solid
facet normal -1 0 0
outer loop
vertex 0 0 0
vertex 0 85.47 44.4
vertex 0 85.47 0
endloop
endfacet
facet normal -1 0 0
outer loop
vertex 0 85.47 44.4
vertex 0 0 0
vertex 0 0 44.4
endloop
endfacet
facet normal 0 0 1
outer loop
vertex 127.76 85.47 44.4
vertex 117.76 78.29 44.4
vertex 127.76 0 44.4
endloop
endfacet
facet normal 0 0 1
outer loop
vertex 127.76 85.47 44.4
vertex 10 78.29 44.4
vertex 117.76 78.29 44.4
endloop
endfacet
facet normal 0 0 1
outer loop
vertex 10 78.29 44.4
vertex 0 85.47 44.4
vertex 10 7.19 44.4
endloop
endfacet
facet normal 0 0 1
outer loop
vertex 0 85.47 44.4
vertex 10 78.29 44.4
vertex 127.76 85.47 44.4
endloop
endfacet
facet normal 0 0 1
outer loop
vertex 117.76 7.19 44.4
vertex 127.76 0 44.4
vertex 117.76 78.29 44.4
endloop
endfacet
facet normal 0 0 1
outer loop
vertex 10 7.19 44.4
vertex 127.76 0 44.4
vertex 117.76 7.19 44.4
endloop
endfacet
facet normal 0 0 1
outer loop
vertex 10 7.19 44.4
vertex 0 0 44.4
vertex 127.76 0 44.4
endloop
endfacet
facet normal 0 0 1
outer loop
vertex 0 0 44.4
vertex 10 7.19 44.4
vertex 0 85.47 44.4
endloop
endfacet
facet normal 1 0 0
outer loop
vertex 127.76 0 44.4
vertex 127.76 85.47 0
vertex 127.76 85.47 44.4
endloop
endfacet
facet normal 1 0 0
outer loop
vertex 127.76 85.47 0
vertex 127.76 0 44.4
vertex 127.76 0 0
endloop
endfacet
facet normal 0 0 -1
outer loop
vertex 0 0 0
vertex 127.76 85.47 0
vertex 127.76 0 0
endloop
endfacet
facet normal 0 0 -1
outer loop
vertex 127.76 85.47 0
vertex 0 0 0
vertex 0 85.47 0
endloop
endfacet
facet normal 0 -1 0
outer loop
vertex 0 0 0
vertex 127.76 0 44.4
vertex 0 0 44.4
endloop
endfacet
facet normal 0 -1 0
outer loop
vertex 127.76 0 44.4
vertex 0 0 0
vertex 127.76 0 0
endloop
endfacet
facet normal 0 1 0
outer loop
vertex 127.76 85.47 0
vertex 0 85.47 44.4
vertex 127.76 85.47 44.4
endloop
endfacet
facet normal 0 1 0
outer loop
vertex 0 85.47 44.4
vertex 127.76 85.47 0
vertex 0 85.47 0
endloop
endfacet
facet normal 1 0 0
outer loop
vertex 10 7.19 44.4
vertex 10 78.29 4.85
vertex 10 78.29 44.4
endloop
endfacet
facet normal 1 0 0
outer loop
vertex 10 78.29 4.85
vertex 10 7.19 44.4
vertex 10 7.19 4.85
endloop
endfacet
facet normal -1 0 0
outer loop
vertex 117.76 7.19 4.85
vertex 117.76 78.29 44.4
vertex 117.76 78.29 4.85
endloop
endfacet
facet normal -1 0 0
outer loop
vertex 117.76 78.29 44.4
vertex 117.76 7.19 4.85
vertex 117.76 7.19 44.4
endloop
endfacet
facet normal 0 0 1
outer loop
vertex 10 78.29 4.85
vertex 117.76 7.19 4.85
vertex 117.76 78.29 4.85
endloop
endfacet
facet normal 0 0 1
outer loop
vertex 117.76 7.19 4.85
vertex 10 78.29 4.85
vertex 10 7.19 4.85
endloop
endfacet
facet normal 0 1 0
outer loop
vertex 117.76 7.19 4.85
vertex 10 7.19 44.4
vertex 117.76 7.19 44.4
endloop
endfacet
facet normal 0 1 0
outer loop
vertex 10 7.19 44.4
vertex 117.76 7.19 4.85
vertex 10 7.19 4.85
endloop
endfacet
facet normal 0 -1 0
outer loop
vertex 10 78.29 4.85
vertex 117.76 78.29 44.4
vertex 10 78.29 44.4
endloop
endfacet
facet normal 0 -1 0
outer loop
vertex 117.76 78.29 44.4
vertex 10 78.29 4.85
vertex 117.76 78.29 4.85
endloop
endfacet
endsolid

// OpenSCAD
// NEST 1 Well Reservoir 290 mL
// loadName: nest_1_reservoir_290ml
// Auto-generated by labware_to_stl.py from Opentrons V2 labware definition

$fn = 64;

difference() {
    // ── Labware body ──────────────────────────────────────────────
    cube([127.7600, 85.4700, 44.4000]);

    // ── Well cutouts ──────────────────────────────────────────────
    // Well A1
    translate([10.0000, 7.1900, 4.8500])
        cube([107.7600, 71.1000, 40.5500]);
}
